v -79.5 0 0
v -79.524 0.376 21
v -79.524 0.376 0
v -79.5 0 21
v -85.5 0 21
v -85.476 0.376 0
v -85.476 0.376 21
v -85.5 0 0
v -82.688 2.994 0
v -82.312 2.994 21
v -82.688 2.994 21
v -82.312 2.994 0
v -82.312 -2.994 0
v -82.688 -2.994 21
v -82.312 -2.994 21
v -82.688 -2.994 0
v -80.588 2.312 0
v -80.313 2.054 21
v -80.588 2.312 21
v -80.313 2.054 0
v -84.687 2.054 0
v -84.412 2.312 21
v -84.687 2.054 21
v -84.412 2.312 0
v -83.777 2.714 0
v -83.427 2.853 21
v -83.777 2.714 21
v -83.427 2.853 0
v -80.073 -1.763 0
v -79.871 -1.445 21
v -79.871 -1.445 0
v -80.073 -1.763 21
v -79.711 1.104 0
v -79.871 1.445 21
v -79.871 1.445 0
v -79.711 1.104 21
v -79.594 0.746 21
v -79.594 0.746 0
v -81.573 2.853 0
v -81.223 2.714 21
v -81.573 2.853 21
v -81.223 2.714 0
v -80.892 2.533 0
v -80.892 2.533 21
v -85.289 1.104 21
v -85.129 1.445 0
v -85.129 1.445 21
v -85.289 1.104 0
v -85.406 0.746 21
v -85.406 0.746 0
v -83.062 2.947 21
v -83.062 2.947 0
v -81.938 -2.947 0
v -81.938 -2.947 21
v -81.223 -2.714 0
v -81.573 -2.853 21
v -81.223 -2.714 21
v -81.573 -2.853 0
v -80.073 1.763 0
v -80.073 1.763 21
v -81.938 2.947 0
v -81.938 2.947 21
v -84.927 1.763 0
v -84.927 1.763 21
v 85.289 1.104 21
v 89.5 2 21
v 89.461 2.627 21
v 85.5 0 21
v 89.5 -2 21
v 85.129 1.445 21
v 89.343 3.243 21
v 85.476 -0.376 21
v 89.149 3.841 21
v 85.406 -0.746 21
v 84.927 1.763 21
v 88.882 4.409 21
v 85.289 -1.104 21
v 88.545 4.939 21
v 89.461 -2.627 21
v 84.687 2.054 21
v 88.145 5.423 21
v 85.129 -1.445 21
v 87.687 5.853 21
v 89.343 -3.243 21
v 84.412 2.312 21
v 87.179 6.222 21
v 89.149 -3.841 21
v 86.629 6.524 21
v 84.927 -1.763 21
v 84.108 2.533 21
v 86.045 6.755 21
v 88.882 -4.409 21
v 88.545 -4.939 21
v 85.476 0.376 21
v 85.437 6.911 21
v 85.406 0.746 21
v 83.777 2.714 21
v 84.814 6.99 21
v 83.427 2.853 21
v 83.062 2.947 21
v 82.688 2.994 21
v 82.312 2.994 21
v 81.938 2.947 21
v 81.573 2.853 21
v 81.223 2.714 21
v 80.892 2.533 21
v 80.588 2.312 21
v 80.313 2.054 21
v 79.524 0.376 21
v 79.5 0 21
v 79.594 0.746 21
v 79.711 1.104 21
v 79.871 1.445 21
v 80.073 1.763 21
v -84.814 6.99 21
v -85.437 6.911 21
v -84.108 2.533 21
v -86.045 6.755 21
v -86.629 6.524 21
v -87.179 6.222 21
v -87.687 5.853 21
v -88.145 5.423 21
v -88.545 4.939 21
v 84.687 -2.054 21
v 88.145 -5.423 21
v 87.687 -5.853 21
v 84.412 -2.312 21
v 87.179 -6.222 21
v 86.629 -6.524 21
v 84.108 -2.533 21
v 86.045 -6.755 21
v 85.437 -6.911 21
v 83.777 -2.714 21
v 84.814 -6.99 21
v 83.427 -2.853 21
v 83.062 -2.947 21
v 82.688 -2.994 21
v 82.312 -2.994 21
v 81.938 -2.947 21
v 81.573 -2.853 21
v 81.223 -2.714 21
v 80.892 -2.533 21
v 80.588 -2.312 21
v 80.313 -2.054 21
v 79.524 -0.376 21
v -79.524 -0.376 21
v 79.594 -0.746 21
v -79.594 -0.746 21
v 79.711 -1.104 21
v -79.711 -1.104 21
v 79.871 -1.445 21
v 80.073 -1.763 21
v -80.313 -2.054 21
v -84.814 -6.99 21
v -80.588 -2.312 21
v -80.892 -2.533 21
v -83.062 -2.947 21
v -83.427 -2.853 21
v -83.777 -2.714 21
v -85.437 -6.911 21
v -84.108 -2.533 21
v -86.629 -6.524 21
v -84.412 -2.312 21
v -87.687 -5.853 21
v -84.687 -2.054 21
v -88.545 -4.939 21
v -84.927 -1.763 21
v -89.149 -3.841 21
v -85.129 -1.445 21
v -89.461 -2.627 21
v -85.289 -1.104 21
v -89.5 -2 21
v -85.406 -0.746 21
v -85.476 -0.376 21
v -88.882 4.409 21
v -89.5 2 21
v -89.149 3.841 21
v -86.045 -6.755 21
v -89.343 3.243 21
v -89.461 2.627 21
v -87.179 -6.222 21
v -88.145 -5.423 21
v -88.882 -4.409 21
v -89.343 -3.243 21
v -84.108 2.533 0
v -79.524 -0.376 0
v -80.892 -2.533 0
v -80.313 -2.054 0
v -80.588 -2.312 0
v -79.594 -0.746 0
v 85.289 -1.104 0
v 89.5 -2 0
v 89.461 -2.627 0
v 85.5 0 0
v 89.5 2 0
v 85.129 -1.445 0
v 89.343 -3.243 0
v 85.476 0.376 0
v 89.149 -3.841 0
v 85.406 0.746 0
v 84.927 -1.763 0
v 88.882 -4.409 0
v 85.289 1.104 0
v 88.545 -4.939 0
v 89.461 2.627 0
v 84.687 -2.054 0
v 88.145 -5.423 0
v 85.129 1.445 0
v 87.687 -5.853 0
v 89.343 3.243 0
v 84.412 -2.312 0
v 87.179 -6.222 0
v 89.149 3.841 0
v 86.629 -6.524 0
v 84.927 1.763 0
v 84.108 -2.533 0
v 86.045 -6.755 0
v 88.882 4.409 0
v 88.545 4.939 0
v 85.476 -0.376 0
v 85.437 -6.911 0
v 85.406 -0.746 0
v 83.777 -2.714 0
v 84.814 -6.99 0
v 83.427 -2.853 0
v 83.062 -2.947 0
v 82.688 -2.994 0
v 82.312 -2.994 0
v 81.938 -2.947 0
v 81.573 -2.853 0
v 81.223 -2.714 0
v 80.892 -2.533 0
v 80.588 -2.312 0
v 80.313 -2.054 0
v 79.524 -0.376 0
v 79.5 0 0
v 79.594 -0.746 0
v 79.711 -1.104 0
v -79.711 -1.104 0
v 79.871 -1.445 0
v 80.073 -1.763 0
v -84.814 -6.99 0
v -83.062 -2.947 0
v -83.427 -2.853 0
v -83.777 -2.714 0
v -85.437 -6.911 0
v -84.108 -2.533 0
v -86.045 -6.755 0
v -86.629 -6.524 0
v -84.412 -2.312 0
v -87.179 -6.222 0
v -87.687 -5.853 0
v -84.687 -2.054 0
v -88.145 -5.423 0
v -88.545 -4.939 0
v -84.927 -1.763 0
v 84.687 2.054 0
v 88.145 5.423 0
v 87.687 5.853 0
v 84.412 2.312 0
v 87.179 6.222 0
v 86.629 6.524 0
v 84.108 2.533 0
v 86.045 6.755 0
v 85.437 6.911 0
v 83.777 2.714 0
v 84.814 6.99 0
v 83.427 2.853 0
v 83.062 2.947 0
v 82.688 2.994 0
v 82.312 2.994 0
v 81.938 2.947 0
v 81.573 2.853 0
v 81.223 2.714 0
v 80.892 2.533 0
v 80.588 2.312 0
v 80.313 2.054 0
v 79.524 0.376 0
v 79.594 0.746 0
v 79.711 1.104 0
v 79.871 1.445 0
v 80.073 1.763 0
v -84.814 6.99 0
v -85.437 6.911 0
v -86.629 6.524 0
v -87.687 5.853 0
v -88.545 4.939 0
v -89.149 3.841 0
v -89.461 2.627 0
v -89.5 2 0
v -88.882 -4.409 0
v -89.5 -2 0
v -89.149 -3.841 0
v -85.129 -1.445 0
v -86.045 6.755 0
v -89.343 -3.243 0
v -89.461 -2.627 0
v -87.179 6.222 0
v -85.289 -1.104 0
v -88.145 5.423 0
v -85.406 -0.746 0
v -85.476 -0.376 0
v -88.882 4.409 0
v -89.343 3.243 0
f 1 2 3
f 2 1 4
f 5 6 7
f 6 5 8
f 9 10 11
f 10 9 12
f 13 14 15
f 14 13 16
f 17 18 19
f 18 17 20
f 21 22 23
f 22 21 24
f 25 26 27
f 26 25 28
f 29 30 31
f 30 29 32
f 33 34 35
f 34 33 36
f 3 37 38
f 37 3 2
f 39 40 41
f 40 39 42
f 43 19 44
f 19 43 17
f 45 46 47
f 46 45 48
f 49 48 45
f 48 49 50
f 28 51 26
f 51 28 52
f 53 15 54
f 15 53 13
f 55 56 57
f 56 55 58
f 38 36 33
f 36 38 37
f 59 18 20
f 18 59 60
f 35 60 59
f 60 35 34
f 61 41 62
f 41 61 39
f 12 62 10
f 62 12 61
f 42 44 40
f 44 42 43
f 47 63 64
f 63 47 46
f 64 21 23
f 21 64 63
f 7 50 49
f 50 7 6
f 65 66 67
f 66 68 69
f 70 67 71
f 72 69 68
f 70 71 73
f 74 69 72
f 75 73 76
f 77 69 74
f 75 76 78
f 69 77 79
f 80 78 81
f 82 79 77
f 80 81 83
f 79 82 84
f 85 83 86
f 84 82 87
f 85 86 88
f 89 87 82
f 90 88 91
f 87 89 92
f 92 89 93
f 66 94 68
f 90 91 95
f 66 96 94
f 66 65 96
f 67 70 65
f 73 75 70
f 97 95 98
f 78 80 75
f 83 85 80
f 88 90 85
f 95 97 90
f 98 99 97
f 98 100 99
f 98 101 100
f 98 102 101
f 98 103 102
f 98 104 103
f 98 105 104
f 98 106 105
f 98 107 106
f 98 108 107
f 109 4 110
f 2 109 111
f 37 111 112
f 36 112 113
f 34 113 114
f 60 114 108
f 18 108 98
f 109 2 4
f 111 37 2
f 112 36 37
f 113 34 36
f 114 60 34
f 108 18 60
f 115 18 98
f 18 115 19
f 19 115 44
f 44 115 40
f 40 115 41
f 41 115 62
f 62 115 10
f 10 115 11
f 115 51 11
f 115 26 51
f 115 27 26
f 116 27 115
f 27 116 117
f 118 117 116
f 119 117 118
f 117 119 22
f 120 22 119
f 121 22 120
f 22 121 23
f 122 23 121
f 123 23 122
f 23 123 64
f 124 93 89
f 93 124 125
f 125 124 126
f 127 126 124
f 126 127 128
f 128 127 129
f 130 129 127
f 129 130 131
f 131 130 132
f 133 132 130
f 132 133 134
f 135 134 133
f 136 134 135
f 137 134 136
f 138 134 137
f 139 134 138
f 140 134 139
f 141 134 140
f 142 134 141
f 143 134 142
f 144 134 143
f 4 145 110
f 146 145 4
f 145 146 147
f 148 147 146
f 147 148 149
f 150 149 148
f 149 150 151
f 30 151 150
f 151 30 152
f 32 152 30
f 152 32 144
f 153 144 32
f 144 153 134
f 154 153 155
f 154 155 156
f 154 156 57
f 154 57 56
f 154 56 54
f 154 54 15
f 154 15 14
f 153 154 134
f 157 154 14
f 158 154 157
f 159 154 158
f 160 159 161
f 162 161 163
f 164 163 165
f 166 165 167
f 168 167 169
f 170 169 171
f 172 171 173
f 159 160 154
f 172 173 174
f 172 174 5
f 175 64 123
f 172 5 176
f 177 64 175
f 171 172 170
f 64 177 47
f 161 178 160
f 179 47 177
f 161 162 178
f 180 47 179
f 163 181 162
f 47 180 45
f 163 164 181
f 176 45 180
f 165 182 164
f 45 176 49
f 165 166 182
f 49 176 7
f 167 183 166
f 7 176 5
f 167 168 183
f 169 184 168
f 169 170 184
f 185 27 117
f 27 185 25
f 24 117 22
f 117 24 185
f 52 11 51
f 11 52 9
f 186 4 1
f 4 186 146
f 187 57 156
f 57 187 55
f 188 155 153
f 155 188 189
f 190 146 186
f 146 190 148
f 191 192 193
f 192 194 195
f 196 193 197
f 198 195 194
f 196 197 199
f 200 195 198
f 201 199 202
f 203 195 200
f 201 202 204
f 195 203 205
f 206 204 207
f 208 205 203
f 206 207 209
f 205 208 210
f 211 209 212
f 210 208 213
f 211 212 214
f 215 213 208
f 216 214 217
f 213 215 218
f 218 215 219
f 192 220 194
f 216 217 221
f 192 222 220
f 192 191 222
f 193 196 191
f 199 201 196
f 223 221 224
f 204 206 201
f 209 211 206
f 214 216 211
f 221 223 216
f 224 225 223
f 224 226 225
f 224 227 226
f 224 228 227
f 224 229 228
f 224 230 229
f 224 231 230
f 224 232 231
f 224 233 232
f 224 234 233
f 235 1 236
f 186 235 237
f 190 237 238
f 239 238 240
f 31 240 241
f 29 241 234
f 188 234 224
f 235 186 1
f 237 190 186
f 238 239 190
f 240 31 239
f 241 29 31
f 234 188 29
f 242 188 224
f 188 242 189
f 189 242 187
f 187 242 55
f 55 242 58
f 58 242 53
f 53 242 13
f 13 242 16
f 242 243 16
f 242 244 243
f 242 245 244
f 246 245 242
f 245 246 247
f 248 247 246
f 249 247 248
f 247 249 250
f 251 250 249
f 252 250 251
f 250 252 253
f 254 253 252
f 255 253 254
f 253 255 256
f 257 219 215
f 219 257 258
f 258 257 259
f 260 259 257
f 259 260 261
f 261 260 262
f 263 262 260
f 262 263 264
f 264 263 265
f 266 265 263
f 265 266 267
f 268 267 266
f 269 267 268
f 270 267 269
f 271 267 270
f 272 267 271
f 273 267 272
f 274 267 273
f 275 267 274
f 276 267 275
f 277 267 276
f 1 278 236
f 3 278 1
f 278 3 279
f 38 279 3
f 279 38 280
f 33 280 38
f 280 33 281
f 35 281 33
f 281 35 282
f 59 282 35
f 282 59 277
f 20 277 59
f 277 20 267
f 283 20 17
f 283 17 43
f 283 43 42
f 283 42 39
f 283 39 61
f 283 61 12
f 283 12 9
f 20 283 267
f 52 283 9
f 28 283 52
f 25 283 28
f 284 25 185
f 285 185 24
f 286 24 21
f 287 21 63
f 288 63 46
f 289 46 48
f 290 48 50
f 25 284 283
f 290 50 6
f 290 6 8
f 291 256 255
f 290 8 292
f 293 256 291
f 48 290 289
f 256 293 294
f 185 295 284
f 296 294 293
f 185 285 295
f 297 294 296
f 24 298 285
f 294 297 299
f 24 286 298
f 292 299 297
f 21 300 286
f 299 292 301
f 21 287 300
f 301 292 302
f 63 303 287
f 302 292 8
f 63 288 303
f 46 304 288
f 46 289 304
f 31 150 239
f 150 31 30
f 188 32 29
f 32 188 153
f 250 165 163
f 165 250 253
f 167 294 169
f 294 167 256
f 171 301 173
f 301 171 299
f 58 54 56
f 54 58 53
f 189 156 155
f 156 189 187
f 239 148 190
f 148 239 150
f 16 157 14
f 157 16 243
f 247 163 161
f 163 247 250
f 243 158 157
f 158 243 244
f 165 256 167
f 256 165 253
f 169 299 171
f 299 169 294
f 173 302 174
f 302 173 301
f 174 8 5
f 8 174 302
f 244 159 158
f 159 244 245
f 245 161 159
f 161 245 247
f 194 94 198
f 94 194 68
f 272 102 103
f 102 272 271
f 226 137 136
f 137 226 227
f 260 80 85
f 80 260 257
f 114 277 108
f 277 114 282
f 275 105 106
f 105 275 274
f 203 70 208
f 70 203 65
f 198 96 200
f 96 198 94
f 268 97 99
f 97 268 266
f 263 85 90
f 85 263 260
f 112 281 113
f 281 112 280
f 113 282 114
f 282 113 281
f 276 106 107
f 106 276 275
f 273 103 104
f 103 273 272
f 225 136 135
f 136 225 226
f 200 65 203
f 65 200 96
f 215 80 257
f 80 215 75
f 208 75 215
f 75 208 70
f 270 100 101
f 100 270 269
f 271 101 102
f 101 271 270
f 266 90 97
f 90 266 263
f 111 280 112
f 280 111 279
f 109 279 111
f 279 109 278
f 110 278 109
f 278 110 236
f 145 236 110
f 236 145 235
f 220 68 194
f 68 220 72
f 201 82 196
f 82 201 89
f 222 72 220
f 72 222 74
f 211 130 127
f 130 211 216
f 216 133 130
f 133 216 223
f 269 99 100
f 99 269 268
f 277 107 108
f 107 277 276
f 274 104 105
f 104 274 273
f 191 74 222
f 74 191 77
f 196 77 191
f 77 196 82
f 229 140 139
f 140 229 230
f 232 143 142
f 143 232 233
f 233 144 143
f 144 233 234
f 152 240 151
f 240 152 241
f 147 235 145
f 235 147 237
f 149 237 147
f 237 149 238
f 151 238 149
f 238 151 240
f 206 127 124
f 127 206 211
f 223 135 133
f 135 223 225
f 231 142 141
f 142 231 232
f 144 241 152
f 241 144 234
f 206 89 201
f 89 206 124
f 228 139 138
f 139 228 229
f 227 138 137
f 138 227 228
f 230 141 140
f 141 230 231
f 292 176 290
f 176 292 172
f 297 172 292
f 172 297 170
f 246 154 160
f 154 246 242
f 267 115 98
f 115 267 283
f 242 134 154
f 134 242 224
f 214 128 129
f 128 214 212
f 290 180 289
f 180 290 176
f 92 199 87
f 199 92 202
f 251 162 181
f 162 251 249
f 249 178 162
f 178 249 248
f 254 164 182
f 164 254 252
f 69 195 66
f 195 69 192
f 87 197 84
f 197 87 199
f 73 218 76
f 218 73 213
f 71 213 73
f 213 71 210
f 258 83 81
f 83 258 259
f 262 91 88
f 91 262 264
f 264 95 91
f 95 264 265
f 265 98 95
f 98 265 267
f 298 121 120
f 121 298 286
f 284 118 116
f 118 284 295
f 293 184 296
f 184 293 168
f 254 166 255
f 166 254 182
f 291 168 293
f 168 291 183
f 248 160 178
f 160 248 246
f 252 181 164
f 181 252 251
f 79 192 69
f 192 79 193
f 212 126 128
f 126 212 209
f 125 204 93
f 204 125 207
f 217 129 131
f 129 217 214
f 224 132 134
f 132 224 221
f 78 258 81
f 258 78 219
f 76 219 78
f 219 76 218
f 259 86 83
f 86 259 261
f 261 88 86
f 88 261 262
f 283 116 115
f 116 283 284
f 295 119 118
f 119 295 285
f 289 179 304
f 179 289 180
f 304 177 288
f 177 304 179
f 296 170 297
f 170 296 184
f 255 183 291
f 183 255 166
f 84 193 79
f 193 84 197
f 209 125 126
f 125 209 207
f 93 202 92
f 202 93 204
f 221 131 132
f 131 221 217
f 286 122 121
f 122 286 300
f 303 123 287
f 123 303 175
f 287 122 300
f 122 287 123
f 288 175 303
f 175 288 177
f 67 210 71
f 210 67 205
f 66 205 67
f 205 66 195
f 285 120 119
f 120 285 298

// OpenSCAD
$fn = 50;


difference() {
	union() {
		hull() {
			translate(v = [-84.5000000000, 2.0000000000, 0]) {
				cylinder(h = 21, r = 5);
			}
			translate(v = [84.5000000000, 2.0000000000, 0]) {
				cylinder(h = 21, r = 5);
			}
			translate(v = [-84.5000000000, -2.0000000000, 0]) {
				cylinder(h = 21, r = 5);
			}
			translate(v = [84.5000000000, -2.0000000000, 0]) {
				cylinder(h = 21, r = 5);
			}
		}
	}
	union() {
		translate(v = [-82.5000000000, 0.0000000000, 0]) {
			cylinder(h = 21, r = 3.0000000000);
		}
		translate(v = [82.5000000000, 0.0000000000, 0]) {
			cylinder(h = 21, r = 3.0000000000);
		}
		translate(v = [-82.5000000000, 0.0000000000, 0]) {
			cylinder(h = 21, r = 1.5000000000);
		}
		translate(v = [82.5000000000, 0.0000000000, 0]) {
			cylinder(h = 21, r = 1.5000000000);
		}
		translate(v = [-82.5000000000, 0.0000000000, 0]) {
			cylinder(h = 21, r = 1.5000000000);
		}
		translate(v = [82.5000000000, 0.0000000000, 0]) {
			cylinder(h = 21, r = 1.5000000000);
		}
		translate(v = [-82.5000000000, 0.0000000000, 0]) {
			cylinder(h = 21, r = 1.5000000000);
		}
		translate(v = [82.5000000000, 0.0000000000, 0]) {
			cylinder(h = 21, r = 1.5000000000);
		}
	}
}
